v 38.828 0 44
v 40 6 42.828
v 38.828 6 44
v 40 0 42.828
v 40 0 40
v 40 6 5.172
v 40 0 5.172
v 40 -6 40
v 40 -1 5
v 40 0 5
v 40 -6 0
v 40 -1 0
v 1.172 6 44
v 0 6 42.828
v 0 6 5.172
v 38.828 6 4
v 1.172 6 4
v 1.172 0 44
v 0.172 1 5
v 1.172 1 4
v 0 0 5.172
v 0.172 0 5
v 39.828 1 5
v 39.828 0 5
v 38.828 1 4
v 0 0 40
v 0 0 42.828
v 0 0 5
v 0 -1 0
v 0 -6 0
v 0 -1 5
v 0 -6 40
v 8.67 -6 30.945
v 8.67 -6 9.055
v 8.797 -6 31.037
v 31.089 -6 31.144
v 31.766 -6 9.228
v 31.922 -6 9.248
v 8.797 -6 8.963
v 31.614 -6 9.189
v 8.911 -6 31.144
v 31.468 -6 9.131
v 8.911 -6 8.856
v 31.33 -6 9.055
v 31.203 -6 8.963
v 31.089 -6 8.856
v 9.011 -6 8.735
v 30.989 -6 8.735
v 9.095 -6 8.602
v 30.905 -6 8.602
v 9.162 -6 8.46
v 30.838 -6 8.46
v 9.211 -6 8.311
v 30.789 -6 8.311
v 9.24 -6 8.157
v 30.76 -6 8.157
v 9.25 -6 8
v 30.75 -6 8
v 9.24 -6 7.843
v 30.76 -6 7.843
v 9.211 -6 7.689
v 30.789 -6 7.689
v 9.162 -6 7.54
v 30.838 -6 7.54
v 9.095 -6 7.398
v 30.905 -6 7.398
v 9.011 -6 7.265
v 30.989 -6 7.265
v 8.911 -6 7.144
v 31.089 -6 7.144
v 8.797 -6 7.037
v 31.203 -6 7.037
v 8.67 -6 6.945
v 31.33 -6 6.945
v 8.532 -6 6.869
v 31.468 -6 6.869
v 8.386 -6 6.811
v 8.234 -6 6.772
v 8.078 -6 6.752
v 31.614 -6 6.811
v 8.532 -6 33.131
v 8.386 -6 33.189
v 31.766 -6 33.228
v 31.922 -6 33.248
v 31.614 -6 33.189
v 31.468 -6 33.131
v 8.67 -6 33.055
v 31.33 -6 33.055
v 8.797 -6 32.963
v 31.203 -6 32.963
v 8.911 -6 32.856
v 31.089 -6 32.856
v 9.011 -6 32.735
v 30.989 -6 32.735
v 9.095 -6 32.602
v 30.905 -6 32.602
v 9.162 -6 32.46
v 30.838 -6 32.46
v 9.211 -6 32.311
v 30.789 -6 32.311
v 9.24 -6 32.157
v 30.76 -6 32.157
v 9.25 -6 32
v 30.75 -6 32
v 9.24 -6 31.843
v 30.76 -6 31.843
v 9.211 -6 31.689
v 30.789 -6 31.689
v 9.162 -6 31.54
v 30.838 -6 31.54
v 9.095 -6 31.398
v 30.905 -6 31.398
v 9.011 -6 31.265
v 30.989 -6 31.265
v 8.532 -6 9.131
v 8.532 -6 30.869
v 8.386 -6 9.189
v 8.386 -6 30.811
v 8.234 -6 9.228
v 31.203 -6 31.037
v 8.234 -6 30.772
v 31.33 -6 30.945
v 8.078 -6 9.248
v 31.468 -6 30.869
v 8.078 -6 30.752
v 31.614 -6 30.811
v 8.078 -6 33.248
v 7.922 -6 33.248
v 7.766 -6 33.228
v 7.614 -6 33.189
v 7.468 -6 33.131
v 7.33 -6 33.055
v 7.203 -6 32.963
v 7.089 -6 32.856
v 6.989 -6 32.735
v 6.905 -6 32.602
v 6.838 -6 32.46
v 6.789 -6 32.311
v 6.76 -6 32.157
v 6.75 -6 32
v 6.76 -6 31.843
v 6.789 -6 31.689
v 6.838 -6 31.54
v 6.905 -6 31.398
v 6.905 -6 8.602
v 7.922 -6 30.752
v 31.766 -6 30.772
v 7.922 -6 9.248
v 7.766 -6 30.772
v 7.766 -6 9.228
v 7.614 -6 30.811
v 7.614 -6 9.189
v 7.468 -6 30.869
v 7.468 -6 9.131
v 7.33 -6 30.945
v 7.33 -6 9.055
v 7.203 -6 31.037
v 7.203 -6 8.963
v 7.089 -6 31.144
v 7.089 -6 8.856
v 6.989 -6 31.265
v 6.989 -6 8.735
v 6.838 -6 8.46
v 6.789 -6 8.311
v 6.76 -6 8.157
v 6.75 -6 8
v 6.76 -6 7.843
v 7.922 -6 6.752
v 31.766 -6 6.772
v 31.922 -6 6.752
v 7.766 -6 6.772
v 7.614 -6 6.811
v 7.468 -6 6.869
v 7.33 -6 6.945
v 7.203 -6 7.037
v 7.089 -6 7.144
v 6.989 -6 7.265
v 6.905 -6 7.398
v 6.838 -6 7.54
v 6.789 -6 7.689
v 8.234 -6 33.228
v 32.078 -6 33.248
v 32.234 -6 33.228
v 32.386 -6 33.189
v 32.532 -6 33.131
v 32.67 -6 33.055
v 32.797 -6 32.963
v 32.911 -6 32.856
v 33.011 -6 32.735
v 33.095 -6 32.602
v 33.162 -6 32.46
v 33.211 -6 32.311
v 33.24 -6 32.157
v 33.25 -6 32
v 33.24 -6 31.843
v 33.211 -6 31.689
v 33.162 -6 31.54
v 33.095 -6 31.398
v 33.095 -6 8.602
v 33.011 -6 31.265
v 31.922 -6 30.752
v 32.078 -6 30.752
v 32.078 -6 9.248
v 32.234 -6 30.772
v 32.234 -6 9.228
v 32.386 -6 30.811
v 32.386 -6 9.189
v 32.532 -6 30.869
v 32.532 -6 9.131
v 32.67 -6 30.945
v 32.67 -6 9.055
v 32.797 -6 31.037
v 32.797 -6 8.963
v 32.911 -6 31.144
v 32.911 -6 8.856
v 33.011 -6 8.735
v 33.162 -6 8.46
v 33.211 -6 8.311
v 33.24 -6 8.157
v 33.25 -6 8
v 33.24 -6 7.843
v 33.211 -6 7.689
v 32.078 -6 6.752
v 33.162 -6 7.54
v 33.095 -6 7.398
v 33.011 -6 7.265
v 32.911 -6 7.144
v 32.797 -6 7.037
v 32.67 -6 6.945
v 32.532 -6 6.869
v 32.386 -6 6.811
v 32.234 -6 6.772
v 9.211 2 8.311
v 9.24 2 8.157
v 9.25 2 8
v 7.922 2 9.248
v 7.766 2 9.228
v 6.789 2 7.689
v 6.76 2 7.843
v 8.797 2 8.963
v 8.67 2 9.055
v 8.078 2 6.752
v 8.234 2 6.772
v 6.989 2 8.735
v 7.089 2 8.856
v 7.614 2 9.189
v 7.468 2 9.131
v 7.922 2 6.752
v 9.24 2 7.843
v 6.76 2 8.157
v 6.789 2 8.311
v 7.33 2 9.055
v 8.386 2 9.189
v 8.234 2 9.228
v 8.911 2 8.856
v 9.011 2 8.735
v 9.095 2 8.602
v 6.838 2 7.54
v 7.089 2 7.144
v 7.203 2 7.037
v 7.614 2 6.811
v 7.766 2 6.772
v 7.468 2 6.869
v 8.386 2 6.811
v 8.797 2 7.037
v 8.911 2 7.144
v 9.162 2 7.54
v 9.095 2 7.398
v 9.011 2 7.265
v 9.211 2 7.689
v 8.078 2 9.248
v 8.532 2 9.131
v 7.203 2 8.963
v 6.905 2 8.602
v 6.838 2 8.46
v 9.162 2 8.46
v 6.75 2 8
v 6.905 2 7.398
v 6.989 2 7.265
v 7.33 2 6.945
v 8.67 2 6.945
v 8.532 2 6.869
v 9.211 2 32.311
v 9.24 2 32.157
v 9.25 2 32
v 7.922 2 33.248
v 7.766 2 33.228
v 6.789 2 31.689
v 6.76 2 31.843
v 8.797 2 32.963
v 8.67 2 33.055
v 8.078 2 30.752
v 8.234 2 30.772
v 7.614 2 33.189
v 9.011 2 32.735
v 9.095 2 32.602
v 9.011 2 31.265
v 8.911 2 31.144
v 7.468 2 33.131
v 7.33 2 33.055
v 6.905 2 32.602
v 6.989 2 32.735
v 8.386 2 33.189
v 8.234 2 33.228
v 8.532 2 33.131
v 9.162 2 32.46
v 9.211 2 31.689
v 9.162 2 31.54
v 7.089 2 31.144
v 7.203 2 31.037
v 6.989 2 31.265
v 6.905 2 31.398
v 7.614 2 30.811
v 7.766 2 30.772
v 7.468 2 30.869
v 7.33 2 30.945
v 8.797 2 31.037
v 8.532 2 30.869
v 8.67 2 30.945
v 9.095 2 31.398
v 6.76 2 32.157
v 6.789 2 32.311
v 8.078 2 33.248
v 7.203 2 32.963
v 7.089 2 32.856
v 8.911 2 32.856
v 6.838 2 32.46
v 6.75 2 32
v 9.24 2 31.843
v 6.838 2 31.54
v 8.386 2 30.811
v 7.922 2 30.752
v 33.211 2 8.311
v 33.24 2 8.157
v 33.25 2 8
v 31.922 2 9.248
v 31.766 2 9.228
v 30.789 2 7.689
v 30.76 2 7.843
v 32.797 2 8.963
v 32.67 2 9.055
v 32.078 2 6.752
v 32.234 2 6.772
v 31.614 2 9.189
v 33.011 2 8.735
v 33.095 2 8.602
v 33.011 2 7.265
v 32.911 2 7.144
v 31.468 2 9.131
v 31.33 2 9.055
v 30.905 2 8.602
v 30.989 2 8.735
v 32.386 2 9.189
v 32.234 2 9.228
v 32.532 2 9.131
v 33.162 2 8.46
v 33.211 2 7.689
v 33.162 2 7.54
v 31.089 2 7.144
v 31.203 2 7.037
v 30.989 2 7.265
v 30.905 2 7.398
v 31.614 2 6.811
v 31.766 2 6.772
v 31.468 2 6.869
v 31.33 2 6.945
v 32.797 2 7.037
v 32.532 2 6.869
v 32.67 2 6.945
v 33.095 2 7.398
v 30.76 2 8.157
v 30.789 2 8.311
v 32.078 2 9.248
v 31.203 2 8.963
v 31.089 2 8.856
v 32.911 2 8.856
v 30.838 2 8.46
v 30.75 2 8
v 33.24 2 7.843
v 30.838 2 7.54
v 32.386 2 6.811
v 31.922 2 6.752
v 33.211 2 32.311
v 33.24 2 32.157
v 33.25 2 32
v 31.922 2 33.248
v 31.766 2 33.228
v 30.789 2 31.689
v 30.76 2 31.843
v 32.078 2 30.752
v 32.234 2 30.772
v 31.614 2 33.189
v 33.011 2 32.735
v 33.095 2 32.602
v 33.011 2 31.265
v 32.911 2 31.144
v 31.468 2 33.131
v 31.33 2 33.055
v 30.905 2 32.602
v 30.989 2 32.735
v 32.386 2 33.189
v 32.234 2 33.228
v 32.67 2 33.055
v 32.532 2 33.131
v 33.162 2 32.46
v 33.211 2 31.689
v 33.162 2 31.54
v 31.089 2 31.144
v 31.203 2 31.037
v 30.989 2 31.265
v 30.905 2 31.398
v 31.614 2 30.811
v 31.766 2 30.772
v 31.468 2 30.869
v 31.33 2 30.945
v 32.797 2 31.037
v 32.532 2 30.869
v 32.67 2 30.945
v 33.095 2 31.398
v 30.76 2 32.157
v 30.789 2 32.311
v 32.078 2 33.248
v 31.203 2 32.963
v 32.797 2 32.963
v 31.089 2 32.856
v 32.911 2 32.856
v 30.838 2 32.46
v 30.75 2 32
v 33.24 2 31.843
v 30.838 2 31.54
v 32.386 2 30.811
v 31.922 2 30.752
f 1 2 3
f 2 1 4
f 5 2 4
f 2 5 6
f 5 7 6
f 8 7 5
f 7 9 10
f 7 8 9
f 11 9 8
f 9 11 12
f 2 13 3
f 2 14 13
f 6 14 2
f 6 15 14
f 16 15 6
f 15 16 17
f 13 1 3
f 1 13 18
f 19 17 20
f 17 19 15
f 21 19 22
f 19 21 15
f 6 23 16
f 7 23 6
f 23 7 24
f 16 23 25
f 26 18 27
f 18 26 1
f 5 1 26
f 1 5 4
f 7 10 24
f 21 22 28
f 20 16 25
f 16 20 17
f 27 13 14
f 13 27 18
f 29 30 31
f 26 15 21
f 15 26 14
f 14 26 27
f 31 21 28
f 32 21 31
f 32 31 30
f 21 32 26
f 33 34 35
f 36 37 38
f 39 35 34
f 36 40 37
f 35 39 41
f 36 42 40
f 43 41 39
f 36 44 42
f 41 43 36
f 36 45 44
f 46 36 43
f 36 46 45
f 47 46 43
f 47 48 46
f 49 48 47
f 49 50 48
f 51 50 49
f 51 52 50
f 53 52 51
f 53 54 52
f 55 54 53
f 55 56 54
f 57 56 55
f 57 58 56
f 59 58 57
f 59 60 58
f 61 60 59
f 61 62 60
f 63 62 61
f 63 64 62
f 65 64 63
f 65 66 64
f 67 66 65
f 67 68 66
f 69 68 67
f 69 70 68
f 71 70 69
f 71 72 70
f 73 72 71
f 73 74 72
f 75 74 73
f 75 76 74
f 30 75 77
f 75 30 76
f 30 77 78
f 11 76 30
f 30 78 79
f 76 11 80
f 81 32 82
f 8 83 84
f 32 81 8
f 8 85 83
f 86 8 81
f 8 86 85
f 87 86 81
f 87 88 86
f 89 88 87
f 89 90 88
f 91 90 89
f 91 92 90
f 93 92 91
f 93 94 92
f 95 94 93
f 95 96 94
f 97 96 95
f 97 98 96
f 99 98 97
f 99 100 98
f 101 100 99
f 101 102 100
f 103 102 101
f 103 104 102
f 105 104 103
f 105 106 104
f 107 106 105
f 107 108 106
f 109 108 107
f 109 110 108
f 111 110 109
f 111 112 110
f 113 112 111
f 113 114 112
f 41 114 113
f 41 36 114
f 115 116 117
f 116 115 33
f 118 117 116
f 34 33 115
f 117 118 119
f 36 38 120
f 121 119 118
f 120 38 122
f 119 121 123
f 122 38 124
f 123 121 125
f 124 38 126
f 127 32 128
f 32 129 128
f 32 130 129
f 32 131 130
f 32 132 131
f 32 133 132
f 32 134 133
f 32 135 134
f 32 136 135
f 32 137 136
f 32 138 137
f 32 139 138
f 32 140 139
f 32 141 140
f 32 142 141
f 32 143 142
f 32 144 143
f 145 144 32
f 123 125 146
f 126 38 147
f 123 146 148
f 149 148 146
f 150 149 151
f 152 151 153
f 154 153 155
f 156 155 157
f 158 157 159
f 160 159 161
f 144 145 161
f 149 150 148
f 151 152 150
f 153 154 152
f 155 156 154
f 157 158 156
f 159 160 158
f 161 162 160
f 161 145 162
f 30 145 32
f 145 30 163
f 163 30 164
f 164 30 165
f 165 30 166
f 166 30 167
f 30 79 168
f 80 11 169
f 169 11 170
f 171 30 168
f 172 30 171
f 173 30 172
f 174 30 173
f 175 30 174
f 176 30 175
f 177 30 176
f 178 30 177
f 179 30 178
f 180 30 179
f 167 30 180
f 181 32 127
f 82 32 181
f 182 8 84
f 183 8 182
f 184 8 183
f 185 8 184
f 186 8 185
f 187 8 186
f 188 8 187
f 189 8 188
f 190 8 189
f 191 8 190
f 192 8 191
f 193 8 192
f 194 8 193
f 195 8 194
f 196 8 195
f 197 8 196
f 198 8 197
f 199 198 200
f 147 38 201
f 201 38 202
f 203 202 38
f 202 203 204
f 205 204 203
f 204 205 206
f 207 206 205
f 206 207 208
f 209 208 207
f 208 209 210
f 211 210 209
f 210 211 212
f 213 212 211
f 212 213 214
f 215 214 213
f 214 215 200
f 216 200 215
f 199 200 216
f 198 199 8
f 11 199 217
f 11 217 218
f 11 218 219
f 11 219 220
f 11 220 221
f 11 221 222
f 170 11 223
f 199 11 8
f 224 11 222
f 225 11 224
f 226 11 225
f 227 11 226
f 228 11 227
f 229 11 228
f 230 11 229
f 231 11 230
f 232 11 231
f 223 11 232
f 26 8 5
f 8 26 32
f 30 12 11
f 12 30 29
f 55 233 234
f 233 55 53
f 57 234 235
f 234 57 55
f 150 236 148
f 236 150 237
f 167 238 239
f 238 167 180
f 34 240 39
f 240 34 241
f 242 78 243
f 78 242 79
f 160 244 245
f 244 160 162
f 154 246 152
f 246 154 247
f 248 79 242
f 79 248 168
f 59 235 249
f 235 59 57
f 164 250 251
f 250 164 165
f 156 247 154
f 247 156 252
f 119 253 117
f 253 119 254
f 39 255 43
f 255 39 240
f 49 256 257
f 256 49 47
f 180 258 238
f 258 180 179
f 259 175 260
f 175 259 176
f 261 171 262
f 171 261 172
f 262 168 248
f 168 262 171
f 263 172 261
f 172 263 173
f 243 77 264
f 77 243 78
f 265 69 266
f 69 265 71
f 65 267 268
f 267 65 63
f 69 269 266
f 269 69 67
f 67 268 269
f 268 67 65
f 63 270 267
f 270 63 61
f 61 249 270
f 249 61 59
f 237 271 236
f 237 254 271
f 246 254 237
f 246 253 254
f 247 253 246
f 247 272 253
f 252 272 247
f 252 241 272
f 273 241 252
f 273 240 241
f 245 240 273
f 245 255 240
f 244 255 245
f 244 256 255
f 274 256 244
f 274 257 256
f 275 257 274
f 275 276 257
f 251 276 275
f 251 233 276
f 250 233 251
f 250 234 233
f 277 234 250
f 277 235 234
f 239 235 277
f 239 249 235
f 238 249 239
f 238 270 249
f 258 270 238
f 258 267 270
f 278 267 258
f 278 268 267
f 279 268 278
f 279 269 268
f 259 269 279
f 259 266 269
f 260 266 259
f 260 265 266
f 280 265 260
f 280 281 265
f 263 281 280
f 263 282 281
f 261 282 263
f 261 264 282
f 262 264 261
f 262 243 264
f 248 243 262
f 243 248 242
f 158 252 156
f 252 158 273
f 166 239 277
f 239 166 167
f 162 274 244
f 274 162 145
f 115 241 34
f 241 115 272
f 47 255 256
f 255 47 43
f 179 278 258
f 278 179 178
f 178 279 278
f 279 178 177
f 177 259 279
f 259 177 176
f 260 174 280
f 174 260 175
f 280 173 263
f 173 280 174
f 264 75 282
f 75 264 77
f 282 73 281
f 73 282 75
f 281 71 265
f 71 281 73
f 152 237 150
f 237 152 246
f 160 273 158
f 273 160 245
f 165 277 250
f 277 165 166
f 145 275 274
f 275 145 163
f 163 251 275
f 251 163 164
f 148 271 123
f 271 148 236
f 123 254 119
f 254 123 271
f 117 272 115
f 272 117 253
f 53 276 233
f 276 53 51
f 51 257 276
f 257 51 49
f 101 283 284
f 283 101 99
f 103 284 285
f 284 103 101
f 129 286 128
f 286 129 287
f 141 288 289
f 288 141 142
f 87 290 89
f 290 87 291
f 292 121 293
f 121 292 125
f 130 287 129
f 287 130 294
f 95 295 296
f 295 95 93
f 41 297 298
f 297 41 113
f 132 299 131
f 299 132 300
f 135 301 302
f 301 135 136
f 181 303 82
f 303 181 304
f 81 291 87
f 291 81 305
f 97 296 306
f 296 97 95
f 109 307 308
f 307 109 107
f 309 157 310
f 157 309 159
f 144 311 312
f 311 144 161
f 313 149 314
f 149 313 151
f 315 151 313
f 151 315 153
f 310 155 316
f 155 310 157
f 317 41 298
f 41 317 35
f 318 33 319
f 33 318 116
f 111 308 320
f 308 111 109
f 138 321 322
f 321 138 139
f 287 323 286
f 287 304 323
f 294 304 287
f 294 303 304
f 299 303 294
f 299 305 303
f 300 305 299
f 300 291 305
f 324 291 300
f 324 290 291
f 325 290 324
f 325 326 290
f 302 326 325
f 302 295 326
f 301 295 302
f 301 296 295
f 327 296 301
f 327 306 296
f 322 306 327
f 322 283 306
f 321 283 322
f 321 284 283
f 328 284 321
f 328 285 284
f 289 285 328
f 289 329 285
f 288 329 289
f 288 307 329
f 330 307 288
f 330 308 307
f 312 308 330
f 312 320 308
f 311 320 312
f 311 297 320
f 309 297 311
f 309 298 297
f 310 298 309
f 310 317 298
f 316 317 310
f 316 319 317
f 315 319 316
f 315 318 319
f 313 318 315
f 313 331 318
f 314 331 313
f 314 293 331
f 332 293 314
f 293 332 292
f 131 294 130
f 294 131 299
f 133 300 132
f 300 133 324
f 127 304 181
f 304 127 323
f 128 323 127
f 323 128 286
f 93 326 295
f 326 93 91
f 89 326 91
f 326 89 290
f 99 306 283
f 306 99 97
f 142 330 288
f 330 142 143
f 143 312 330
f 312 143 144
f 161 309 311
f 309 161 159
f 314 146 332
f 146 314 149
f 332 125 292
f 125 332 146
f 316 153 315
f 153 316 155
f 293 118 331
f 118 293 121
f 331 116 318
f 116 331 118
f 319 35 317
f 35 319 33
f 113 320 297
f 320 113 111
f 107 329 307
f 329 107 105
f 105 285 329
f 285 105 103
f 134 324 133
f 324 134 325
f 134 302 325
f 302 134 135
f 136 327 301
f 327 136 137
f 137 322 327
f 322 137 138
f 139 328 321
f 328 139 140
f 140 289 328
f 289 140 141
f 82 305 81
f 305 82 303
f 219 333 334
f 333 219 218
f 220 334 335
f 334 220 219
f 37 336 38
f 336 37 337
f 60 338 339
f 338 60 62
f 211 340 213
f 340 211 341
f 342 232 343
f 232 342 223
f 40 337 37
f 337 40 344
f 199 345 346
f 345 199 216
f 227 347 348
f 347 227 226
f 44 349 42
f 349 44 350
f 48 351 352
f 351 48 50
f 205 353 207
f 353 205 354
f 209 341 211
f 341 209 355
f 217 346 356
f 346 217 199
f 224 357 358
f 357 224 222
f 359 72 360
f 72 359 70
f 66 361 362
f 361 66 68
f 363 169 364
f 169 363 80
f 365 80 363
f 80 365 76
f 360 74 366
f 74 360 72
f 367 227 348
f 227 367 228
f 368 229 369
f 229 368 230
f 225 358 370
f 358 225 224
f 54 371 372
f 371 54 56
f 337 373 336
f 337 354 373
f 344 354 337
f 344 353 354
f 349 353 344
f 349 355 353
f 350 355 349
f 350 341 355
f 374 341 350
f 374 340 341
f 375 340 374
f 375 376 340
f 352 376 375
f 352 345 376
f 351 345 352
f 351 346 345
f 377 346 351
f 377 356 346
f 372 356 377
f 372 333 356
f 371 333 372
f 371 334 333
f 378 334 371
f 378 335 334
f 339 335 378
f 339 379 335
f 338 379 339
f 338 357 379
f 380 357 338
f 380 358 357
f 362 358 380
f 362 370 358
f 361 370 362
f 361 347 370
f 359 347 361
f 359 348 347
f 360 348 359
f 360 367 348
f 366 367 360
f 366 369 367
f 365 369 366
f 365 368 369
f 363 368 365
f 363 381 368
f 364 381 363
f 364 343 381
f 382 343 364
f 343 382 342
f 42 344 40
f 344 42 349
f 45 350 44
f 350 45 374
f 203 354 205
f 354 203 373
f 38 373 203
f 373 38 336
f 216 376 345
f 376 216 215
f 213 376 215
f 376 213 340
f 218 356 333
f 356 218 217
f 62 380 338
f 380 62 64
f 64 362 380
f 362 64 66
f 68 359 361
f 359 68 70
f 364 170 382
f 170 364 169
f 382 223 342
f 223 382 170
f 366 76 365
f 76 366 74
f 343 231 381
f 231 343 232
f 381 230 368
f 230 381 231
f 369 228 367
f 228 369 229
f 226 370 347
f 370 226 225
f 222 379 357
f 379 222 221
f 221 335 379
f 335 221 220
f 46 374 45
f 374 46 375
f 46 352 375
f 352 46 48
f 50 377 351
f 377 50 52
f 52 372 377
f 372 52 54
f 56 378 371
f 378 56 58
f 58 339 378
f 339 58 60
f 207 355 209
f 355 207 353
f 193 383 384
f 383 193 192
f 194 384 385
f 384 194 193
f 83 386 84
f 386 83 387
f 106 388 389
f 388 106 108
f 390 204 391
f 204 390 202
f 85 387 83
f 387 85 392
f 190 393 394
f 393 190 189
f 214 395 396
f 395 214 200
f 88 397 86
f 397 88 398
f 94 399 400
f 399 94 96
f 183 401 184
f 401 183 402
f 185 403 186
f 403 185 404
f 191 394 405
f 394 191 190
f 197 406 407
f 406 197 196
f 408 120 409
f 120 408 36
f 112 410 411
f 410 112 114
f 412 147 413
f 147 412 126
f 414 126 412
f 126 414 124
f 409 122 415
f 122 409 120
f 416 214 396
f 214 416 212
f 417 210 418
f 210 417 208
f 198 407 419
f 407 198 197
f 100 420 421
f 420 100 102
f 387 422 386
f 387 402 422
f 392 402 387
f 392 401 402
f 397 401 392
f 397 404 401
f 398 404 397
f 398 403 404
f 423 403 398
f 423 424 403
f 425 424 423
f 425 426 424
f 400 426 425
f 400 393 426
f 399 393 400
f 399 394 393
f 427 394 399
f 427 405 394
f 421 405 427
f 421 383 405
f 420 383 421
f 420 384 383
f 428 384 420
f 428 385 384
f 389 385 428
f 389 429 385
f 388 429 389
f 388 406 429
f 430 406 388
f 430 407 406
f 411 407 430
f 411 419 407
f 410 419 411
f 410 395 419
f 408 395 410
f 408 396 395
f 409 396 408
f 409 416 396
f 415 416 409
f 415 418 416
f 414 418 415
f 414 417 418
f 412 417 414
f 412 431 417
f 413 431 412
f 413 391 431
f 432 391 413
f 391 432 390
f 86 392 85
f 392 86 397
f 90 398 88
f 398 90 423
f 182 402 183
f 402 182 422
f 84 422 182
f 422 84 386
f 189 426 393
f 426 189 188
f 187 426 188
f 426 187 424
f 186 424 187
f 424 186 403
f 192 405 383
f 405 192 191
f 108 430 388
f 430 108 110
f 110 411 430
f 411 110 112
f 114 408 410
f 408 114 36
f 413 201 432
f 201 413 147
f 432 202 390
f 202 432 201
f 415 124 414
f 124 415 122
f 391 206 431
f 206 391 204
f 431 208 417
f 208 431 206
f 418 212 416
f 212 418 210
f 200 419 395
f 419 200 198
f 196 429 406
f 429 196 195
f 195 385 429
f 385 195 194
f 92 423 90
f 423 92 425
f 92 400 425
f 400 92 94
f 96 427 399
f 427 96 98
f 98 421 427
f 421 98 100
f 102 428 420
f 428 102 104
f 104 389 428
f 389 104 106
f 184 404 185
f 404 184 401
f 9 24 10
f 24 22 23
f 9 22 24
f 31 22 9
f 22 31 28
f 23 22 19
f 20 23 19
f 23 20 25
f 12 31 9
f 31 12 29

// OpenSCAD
// file: ../../../lib/helpers.math.scad
// Constants

e = 2.71828;
tau = (1 + sqrt(5)) / 2;
inf = 0.01;

// is_defined

function is_defined(value) = !is_undef(value);

// Logistic function and its derivative.

function logistic_function(x) = 
  let (ex = exp(x))
  ex / (ex + 1);

function logistic_function_dx(x) = 
  let (ex = exp(x))
  ex / ((ex + 1)*(ex + 1));
  
// Calculates length of a vector.

function length(v) = norm(v);

// Normalizes a vector.

function normalize(v) = v / length(v);

// Calculates hypothenuse of right triangle from its sides.

function hypoth(a, b) = sqrt(pow(a, 2) + pow(b, 2));

// Angle between two vectors.

function angle3(u, v = [1,0,0]) = 
  atan2(norm(cross(u, v)), u * v);

// Given a 2D directional vector, turns 90 deg CW and returns new vector.

function turn_right(xy) = [xy.y, -xy.x];

// Given a 2D directional vector, turns 90 deg CCW and returns new vector.

function turn_left(xy) = [-xy.y, xy.x];

// Returns original value (if not undef) or provided default (if the value is undef).

function initialize(value, default) =
  is_undef(value) ? default : value;
// main file
include <../../../lib/helpers.math.scad>

dim = [40, 6, 40];
offset = 6; 
offset_z = 4;
thick_connector = 5;
overlap = 1;

module do_chamfer (offs) {
  if (offset == 0) {
    children();
  } else {
    offset(delta = offs, chamfer = true)
    offset(delta = -offs)
    children();
  }
}

module vert (chamfer) {
  rotate(90, [1,0,0])
  linear_extrude(dim.y)
  do_chamfer(chamfer ? 2 : 0)
  square([dim.x, dim.z]);
}

module connector () {
  rotate(-90, [0, 1, 0])
  linear_extrude(thick_connector)
  polygon([
    [0,0], 
    [0, dim.z - 2 * offset + overlap],
    [dim.z - 2 * offset + overlap, 0]
  ]);
}

difference () {
  union () {
    translate([0, dim.y, offset_z])
    vert(true);
  
    vert(false);
  }
  
  translate([-1, -1, -1])
  cube([dim.x + 2, 2, offset_z + 2]);

  hole = 2.5;
  dhole = [24, 0, 24];

  #for (x = [0:1])
    for (z = [0:1]) {
      translate([(dim.x - dhole.x)/2 + dhole.x * x, 0,
                 (dim.z - dhole.z)/2 + dhole.z * z])
      translate([0, 2, 0])
      rotate(90, [1,0,0])
      union () {    
        linear_extrude(dim.y * 2)
        circle(d = hole, $fn=50);
      }
    }
  }
